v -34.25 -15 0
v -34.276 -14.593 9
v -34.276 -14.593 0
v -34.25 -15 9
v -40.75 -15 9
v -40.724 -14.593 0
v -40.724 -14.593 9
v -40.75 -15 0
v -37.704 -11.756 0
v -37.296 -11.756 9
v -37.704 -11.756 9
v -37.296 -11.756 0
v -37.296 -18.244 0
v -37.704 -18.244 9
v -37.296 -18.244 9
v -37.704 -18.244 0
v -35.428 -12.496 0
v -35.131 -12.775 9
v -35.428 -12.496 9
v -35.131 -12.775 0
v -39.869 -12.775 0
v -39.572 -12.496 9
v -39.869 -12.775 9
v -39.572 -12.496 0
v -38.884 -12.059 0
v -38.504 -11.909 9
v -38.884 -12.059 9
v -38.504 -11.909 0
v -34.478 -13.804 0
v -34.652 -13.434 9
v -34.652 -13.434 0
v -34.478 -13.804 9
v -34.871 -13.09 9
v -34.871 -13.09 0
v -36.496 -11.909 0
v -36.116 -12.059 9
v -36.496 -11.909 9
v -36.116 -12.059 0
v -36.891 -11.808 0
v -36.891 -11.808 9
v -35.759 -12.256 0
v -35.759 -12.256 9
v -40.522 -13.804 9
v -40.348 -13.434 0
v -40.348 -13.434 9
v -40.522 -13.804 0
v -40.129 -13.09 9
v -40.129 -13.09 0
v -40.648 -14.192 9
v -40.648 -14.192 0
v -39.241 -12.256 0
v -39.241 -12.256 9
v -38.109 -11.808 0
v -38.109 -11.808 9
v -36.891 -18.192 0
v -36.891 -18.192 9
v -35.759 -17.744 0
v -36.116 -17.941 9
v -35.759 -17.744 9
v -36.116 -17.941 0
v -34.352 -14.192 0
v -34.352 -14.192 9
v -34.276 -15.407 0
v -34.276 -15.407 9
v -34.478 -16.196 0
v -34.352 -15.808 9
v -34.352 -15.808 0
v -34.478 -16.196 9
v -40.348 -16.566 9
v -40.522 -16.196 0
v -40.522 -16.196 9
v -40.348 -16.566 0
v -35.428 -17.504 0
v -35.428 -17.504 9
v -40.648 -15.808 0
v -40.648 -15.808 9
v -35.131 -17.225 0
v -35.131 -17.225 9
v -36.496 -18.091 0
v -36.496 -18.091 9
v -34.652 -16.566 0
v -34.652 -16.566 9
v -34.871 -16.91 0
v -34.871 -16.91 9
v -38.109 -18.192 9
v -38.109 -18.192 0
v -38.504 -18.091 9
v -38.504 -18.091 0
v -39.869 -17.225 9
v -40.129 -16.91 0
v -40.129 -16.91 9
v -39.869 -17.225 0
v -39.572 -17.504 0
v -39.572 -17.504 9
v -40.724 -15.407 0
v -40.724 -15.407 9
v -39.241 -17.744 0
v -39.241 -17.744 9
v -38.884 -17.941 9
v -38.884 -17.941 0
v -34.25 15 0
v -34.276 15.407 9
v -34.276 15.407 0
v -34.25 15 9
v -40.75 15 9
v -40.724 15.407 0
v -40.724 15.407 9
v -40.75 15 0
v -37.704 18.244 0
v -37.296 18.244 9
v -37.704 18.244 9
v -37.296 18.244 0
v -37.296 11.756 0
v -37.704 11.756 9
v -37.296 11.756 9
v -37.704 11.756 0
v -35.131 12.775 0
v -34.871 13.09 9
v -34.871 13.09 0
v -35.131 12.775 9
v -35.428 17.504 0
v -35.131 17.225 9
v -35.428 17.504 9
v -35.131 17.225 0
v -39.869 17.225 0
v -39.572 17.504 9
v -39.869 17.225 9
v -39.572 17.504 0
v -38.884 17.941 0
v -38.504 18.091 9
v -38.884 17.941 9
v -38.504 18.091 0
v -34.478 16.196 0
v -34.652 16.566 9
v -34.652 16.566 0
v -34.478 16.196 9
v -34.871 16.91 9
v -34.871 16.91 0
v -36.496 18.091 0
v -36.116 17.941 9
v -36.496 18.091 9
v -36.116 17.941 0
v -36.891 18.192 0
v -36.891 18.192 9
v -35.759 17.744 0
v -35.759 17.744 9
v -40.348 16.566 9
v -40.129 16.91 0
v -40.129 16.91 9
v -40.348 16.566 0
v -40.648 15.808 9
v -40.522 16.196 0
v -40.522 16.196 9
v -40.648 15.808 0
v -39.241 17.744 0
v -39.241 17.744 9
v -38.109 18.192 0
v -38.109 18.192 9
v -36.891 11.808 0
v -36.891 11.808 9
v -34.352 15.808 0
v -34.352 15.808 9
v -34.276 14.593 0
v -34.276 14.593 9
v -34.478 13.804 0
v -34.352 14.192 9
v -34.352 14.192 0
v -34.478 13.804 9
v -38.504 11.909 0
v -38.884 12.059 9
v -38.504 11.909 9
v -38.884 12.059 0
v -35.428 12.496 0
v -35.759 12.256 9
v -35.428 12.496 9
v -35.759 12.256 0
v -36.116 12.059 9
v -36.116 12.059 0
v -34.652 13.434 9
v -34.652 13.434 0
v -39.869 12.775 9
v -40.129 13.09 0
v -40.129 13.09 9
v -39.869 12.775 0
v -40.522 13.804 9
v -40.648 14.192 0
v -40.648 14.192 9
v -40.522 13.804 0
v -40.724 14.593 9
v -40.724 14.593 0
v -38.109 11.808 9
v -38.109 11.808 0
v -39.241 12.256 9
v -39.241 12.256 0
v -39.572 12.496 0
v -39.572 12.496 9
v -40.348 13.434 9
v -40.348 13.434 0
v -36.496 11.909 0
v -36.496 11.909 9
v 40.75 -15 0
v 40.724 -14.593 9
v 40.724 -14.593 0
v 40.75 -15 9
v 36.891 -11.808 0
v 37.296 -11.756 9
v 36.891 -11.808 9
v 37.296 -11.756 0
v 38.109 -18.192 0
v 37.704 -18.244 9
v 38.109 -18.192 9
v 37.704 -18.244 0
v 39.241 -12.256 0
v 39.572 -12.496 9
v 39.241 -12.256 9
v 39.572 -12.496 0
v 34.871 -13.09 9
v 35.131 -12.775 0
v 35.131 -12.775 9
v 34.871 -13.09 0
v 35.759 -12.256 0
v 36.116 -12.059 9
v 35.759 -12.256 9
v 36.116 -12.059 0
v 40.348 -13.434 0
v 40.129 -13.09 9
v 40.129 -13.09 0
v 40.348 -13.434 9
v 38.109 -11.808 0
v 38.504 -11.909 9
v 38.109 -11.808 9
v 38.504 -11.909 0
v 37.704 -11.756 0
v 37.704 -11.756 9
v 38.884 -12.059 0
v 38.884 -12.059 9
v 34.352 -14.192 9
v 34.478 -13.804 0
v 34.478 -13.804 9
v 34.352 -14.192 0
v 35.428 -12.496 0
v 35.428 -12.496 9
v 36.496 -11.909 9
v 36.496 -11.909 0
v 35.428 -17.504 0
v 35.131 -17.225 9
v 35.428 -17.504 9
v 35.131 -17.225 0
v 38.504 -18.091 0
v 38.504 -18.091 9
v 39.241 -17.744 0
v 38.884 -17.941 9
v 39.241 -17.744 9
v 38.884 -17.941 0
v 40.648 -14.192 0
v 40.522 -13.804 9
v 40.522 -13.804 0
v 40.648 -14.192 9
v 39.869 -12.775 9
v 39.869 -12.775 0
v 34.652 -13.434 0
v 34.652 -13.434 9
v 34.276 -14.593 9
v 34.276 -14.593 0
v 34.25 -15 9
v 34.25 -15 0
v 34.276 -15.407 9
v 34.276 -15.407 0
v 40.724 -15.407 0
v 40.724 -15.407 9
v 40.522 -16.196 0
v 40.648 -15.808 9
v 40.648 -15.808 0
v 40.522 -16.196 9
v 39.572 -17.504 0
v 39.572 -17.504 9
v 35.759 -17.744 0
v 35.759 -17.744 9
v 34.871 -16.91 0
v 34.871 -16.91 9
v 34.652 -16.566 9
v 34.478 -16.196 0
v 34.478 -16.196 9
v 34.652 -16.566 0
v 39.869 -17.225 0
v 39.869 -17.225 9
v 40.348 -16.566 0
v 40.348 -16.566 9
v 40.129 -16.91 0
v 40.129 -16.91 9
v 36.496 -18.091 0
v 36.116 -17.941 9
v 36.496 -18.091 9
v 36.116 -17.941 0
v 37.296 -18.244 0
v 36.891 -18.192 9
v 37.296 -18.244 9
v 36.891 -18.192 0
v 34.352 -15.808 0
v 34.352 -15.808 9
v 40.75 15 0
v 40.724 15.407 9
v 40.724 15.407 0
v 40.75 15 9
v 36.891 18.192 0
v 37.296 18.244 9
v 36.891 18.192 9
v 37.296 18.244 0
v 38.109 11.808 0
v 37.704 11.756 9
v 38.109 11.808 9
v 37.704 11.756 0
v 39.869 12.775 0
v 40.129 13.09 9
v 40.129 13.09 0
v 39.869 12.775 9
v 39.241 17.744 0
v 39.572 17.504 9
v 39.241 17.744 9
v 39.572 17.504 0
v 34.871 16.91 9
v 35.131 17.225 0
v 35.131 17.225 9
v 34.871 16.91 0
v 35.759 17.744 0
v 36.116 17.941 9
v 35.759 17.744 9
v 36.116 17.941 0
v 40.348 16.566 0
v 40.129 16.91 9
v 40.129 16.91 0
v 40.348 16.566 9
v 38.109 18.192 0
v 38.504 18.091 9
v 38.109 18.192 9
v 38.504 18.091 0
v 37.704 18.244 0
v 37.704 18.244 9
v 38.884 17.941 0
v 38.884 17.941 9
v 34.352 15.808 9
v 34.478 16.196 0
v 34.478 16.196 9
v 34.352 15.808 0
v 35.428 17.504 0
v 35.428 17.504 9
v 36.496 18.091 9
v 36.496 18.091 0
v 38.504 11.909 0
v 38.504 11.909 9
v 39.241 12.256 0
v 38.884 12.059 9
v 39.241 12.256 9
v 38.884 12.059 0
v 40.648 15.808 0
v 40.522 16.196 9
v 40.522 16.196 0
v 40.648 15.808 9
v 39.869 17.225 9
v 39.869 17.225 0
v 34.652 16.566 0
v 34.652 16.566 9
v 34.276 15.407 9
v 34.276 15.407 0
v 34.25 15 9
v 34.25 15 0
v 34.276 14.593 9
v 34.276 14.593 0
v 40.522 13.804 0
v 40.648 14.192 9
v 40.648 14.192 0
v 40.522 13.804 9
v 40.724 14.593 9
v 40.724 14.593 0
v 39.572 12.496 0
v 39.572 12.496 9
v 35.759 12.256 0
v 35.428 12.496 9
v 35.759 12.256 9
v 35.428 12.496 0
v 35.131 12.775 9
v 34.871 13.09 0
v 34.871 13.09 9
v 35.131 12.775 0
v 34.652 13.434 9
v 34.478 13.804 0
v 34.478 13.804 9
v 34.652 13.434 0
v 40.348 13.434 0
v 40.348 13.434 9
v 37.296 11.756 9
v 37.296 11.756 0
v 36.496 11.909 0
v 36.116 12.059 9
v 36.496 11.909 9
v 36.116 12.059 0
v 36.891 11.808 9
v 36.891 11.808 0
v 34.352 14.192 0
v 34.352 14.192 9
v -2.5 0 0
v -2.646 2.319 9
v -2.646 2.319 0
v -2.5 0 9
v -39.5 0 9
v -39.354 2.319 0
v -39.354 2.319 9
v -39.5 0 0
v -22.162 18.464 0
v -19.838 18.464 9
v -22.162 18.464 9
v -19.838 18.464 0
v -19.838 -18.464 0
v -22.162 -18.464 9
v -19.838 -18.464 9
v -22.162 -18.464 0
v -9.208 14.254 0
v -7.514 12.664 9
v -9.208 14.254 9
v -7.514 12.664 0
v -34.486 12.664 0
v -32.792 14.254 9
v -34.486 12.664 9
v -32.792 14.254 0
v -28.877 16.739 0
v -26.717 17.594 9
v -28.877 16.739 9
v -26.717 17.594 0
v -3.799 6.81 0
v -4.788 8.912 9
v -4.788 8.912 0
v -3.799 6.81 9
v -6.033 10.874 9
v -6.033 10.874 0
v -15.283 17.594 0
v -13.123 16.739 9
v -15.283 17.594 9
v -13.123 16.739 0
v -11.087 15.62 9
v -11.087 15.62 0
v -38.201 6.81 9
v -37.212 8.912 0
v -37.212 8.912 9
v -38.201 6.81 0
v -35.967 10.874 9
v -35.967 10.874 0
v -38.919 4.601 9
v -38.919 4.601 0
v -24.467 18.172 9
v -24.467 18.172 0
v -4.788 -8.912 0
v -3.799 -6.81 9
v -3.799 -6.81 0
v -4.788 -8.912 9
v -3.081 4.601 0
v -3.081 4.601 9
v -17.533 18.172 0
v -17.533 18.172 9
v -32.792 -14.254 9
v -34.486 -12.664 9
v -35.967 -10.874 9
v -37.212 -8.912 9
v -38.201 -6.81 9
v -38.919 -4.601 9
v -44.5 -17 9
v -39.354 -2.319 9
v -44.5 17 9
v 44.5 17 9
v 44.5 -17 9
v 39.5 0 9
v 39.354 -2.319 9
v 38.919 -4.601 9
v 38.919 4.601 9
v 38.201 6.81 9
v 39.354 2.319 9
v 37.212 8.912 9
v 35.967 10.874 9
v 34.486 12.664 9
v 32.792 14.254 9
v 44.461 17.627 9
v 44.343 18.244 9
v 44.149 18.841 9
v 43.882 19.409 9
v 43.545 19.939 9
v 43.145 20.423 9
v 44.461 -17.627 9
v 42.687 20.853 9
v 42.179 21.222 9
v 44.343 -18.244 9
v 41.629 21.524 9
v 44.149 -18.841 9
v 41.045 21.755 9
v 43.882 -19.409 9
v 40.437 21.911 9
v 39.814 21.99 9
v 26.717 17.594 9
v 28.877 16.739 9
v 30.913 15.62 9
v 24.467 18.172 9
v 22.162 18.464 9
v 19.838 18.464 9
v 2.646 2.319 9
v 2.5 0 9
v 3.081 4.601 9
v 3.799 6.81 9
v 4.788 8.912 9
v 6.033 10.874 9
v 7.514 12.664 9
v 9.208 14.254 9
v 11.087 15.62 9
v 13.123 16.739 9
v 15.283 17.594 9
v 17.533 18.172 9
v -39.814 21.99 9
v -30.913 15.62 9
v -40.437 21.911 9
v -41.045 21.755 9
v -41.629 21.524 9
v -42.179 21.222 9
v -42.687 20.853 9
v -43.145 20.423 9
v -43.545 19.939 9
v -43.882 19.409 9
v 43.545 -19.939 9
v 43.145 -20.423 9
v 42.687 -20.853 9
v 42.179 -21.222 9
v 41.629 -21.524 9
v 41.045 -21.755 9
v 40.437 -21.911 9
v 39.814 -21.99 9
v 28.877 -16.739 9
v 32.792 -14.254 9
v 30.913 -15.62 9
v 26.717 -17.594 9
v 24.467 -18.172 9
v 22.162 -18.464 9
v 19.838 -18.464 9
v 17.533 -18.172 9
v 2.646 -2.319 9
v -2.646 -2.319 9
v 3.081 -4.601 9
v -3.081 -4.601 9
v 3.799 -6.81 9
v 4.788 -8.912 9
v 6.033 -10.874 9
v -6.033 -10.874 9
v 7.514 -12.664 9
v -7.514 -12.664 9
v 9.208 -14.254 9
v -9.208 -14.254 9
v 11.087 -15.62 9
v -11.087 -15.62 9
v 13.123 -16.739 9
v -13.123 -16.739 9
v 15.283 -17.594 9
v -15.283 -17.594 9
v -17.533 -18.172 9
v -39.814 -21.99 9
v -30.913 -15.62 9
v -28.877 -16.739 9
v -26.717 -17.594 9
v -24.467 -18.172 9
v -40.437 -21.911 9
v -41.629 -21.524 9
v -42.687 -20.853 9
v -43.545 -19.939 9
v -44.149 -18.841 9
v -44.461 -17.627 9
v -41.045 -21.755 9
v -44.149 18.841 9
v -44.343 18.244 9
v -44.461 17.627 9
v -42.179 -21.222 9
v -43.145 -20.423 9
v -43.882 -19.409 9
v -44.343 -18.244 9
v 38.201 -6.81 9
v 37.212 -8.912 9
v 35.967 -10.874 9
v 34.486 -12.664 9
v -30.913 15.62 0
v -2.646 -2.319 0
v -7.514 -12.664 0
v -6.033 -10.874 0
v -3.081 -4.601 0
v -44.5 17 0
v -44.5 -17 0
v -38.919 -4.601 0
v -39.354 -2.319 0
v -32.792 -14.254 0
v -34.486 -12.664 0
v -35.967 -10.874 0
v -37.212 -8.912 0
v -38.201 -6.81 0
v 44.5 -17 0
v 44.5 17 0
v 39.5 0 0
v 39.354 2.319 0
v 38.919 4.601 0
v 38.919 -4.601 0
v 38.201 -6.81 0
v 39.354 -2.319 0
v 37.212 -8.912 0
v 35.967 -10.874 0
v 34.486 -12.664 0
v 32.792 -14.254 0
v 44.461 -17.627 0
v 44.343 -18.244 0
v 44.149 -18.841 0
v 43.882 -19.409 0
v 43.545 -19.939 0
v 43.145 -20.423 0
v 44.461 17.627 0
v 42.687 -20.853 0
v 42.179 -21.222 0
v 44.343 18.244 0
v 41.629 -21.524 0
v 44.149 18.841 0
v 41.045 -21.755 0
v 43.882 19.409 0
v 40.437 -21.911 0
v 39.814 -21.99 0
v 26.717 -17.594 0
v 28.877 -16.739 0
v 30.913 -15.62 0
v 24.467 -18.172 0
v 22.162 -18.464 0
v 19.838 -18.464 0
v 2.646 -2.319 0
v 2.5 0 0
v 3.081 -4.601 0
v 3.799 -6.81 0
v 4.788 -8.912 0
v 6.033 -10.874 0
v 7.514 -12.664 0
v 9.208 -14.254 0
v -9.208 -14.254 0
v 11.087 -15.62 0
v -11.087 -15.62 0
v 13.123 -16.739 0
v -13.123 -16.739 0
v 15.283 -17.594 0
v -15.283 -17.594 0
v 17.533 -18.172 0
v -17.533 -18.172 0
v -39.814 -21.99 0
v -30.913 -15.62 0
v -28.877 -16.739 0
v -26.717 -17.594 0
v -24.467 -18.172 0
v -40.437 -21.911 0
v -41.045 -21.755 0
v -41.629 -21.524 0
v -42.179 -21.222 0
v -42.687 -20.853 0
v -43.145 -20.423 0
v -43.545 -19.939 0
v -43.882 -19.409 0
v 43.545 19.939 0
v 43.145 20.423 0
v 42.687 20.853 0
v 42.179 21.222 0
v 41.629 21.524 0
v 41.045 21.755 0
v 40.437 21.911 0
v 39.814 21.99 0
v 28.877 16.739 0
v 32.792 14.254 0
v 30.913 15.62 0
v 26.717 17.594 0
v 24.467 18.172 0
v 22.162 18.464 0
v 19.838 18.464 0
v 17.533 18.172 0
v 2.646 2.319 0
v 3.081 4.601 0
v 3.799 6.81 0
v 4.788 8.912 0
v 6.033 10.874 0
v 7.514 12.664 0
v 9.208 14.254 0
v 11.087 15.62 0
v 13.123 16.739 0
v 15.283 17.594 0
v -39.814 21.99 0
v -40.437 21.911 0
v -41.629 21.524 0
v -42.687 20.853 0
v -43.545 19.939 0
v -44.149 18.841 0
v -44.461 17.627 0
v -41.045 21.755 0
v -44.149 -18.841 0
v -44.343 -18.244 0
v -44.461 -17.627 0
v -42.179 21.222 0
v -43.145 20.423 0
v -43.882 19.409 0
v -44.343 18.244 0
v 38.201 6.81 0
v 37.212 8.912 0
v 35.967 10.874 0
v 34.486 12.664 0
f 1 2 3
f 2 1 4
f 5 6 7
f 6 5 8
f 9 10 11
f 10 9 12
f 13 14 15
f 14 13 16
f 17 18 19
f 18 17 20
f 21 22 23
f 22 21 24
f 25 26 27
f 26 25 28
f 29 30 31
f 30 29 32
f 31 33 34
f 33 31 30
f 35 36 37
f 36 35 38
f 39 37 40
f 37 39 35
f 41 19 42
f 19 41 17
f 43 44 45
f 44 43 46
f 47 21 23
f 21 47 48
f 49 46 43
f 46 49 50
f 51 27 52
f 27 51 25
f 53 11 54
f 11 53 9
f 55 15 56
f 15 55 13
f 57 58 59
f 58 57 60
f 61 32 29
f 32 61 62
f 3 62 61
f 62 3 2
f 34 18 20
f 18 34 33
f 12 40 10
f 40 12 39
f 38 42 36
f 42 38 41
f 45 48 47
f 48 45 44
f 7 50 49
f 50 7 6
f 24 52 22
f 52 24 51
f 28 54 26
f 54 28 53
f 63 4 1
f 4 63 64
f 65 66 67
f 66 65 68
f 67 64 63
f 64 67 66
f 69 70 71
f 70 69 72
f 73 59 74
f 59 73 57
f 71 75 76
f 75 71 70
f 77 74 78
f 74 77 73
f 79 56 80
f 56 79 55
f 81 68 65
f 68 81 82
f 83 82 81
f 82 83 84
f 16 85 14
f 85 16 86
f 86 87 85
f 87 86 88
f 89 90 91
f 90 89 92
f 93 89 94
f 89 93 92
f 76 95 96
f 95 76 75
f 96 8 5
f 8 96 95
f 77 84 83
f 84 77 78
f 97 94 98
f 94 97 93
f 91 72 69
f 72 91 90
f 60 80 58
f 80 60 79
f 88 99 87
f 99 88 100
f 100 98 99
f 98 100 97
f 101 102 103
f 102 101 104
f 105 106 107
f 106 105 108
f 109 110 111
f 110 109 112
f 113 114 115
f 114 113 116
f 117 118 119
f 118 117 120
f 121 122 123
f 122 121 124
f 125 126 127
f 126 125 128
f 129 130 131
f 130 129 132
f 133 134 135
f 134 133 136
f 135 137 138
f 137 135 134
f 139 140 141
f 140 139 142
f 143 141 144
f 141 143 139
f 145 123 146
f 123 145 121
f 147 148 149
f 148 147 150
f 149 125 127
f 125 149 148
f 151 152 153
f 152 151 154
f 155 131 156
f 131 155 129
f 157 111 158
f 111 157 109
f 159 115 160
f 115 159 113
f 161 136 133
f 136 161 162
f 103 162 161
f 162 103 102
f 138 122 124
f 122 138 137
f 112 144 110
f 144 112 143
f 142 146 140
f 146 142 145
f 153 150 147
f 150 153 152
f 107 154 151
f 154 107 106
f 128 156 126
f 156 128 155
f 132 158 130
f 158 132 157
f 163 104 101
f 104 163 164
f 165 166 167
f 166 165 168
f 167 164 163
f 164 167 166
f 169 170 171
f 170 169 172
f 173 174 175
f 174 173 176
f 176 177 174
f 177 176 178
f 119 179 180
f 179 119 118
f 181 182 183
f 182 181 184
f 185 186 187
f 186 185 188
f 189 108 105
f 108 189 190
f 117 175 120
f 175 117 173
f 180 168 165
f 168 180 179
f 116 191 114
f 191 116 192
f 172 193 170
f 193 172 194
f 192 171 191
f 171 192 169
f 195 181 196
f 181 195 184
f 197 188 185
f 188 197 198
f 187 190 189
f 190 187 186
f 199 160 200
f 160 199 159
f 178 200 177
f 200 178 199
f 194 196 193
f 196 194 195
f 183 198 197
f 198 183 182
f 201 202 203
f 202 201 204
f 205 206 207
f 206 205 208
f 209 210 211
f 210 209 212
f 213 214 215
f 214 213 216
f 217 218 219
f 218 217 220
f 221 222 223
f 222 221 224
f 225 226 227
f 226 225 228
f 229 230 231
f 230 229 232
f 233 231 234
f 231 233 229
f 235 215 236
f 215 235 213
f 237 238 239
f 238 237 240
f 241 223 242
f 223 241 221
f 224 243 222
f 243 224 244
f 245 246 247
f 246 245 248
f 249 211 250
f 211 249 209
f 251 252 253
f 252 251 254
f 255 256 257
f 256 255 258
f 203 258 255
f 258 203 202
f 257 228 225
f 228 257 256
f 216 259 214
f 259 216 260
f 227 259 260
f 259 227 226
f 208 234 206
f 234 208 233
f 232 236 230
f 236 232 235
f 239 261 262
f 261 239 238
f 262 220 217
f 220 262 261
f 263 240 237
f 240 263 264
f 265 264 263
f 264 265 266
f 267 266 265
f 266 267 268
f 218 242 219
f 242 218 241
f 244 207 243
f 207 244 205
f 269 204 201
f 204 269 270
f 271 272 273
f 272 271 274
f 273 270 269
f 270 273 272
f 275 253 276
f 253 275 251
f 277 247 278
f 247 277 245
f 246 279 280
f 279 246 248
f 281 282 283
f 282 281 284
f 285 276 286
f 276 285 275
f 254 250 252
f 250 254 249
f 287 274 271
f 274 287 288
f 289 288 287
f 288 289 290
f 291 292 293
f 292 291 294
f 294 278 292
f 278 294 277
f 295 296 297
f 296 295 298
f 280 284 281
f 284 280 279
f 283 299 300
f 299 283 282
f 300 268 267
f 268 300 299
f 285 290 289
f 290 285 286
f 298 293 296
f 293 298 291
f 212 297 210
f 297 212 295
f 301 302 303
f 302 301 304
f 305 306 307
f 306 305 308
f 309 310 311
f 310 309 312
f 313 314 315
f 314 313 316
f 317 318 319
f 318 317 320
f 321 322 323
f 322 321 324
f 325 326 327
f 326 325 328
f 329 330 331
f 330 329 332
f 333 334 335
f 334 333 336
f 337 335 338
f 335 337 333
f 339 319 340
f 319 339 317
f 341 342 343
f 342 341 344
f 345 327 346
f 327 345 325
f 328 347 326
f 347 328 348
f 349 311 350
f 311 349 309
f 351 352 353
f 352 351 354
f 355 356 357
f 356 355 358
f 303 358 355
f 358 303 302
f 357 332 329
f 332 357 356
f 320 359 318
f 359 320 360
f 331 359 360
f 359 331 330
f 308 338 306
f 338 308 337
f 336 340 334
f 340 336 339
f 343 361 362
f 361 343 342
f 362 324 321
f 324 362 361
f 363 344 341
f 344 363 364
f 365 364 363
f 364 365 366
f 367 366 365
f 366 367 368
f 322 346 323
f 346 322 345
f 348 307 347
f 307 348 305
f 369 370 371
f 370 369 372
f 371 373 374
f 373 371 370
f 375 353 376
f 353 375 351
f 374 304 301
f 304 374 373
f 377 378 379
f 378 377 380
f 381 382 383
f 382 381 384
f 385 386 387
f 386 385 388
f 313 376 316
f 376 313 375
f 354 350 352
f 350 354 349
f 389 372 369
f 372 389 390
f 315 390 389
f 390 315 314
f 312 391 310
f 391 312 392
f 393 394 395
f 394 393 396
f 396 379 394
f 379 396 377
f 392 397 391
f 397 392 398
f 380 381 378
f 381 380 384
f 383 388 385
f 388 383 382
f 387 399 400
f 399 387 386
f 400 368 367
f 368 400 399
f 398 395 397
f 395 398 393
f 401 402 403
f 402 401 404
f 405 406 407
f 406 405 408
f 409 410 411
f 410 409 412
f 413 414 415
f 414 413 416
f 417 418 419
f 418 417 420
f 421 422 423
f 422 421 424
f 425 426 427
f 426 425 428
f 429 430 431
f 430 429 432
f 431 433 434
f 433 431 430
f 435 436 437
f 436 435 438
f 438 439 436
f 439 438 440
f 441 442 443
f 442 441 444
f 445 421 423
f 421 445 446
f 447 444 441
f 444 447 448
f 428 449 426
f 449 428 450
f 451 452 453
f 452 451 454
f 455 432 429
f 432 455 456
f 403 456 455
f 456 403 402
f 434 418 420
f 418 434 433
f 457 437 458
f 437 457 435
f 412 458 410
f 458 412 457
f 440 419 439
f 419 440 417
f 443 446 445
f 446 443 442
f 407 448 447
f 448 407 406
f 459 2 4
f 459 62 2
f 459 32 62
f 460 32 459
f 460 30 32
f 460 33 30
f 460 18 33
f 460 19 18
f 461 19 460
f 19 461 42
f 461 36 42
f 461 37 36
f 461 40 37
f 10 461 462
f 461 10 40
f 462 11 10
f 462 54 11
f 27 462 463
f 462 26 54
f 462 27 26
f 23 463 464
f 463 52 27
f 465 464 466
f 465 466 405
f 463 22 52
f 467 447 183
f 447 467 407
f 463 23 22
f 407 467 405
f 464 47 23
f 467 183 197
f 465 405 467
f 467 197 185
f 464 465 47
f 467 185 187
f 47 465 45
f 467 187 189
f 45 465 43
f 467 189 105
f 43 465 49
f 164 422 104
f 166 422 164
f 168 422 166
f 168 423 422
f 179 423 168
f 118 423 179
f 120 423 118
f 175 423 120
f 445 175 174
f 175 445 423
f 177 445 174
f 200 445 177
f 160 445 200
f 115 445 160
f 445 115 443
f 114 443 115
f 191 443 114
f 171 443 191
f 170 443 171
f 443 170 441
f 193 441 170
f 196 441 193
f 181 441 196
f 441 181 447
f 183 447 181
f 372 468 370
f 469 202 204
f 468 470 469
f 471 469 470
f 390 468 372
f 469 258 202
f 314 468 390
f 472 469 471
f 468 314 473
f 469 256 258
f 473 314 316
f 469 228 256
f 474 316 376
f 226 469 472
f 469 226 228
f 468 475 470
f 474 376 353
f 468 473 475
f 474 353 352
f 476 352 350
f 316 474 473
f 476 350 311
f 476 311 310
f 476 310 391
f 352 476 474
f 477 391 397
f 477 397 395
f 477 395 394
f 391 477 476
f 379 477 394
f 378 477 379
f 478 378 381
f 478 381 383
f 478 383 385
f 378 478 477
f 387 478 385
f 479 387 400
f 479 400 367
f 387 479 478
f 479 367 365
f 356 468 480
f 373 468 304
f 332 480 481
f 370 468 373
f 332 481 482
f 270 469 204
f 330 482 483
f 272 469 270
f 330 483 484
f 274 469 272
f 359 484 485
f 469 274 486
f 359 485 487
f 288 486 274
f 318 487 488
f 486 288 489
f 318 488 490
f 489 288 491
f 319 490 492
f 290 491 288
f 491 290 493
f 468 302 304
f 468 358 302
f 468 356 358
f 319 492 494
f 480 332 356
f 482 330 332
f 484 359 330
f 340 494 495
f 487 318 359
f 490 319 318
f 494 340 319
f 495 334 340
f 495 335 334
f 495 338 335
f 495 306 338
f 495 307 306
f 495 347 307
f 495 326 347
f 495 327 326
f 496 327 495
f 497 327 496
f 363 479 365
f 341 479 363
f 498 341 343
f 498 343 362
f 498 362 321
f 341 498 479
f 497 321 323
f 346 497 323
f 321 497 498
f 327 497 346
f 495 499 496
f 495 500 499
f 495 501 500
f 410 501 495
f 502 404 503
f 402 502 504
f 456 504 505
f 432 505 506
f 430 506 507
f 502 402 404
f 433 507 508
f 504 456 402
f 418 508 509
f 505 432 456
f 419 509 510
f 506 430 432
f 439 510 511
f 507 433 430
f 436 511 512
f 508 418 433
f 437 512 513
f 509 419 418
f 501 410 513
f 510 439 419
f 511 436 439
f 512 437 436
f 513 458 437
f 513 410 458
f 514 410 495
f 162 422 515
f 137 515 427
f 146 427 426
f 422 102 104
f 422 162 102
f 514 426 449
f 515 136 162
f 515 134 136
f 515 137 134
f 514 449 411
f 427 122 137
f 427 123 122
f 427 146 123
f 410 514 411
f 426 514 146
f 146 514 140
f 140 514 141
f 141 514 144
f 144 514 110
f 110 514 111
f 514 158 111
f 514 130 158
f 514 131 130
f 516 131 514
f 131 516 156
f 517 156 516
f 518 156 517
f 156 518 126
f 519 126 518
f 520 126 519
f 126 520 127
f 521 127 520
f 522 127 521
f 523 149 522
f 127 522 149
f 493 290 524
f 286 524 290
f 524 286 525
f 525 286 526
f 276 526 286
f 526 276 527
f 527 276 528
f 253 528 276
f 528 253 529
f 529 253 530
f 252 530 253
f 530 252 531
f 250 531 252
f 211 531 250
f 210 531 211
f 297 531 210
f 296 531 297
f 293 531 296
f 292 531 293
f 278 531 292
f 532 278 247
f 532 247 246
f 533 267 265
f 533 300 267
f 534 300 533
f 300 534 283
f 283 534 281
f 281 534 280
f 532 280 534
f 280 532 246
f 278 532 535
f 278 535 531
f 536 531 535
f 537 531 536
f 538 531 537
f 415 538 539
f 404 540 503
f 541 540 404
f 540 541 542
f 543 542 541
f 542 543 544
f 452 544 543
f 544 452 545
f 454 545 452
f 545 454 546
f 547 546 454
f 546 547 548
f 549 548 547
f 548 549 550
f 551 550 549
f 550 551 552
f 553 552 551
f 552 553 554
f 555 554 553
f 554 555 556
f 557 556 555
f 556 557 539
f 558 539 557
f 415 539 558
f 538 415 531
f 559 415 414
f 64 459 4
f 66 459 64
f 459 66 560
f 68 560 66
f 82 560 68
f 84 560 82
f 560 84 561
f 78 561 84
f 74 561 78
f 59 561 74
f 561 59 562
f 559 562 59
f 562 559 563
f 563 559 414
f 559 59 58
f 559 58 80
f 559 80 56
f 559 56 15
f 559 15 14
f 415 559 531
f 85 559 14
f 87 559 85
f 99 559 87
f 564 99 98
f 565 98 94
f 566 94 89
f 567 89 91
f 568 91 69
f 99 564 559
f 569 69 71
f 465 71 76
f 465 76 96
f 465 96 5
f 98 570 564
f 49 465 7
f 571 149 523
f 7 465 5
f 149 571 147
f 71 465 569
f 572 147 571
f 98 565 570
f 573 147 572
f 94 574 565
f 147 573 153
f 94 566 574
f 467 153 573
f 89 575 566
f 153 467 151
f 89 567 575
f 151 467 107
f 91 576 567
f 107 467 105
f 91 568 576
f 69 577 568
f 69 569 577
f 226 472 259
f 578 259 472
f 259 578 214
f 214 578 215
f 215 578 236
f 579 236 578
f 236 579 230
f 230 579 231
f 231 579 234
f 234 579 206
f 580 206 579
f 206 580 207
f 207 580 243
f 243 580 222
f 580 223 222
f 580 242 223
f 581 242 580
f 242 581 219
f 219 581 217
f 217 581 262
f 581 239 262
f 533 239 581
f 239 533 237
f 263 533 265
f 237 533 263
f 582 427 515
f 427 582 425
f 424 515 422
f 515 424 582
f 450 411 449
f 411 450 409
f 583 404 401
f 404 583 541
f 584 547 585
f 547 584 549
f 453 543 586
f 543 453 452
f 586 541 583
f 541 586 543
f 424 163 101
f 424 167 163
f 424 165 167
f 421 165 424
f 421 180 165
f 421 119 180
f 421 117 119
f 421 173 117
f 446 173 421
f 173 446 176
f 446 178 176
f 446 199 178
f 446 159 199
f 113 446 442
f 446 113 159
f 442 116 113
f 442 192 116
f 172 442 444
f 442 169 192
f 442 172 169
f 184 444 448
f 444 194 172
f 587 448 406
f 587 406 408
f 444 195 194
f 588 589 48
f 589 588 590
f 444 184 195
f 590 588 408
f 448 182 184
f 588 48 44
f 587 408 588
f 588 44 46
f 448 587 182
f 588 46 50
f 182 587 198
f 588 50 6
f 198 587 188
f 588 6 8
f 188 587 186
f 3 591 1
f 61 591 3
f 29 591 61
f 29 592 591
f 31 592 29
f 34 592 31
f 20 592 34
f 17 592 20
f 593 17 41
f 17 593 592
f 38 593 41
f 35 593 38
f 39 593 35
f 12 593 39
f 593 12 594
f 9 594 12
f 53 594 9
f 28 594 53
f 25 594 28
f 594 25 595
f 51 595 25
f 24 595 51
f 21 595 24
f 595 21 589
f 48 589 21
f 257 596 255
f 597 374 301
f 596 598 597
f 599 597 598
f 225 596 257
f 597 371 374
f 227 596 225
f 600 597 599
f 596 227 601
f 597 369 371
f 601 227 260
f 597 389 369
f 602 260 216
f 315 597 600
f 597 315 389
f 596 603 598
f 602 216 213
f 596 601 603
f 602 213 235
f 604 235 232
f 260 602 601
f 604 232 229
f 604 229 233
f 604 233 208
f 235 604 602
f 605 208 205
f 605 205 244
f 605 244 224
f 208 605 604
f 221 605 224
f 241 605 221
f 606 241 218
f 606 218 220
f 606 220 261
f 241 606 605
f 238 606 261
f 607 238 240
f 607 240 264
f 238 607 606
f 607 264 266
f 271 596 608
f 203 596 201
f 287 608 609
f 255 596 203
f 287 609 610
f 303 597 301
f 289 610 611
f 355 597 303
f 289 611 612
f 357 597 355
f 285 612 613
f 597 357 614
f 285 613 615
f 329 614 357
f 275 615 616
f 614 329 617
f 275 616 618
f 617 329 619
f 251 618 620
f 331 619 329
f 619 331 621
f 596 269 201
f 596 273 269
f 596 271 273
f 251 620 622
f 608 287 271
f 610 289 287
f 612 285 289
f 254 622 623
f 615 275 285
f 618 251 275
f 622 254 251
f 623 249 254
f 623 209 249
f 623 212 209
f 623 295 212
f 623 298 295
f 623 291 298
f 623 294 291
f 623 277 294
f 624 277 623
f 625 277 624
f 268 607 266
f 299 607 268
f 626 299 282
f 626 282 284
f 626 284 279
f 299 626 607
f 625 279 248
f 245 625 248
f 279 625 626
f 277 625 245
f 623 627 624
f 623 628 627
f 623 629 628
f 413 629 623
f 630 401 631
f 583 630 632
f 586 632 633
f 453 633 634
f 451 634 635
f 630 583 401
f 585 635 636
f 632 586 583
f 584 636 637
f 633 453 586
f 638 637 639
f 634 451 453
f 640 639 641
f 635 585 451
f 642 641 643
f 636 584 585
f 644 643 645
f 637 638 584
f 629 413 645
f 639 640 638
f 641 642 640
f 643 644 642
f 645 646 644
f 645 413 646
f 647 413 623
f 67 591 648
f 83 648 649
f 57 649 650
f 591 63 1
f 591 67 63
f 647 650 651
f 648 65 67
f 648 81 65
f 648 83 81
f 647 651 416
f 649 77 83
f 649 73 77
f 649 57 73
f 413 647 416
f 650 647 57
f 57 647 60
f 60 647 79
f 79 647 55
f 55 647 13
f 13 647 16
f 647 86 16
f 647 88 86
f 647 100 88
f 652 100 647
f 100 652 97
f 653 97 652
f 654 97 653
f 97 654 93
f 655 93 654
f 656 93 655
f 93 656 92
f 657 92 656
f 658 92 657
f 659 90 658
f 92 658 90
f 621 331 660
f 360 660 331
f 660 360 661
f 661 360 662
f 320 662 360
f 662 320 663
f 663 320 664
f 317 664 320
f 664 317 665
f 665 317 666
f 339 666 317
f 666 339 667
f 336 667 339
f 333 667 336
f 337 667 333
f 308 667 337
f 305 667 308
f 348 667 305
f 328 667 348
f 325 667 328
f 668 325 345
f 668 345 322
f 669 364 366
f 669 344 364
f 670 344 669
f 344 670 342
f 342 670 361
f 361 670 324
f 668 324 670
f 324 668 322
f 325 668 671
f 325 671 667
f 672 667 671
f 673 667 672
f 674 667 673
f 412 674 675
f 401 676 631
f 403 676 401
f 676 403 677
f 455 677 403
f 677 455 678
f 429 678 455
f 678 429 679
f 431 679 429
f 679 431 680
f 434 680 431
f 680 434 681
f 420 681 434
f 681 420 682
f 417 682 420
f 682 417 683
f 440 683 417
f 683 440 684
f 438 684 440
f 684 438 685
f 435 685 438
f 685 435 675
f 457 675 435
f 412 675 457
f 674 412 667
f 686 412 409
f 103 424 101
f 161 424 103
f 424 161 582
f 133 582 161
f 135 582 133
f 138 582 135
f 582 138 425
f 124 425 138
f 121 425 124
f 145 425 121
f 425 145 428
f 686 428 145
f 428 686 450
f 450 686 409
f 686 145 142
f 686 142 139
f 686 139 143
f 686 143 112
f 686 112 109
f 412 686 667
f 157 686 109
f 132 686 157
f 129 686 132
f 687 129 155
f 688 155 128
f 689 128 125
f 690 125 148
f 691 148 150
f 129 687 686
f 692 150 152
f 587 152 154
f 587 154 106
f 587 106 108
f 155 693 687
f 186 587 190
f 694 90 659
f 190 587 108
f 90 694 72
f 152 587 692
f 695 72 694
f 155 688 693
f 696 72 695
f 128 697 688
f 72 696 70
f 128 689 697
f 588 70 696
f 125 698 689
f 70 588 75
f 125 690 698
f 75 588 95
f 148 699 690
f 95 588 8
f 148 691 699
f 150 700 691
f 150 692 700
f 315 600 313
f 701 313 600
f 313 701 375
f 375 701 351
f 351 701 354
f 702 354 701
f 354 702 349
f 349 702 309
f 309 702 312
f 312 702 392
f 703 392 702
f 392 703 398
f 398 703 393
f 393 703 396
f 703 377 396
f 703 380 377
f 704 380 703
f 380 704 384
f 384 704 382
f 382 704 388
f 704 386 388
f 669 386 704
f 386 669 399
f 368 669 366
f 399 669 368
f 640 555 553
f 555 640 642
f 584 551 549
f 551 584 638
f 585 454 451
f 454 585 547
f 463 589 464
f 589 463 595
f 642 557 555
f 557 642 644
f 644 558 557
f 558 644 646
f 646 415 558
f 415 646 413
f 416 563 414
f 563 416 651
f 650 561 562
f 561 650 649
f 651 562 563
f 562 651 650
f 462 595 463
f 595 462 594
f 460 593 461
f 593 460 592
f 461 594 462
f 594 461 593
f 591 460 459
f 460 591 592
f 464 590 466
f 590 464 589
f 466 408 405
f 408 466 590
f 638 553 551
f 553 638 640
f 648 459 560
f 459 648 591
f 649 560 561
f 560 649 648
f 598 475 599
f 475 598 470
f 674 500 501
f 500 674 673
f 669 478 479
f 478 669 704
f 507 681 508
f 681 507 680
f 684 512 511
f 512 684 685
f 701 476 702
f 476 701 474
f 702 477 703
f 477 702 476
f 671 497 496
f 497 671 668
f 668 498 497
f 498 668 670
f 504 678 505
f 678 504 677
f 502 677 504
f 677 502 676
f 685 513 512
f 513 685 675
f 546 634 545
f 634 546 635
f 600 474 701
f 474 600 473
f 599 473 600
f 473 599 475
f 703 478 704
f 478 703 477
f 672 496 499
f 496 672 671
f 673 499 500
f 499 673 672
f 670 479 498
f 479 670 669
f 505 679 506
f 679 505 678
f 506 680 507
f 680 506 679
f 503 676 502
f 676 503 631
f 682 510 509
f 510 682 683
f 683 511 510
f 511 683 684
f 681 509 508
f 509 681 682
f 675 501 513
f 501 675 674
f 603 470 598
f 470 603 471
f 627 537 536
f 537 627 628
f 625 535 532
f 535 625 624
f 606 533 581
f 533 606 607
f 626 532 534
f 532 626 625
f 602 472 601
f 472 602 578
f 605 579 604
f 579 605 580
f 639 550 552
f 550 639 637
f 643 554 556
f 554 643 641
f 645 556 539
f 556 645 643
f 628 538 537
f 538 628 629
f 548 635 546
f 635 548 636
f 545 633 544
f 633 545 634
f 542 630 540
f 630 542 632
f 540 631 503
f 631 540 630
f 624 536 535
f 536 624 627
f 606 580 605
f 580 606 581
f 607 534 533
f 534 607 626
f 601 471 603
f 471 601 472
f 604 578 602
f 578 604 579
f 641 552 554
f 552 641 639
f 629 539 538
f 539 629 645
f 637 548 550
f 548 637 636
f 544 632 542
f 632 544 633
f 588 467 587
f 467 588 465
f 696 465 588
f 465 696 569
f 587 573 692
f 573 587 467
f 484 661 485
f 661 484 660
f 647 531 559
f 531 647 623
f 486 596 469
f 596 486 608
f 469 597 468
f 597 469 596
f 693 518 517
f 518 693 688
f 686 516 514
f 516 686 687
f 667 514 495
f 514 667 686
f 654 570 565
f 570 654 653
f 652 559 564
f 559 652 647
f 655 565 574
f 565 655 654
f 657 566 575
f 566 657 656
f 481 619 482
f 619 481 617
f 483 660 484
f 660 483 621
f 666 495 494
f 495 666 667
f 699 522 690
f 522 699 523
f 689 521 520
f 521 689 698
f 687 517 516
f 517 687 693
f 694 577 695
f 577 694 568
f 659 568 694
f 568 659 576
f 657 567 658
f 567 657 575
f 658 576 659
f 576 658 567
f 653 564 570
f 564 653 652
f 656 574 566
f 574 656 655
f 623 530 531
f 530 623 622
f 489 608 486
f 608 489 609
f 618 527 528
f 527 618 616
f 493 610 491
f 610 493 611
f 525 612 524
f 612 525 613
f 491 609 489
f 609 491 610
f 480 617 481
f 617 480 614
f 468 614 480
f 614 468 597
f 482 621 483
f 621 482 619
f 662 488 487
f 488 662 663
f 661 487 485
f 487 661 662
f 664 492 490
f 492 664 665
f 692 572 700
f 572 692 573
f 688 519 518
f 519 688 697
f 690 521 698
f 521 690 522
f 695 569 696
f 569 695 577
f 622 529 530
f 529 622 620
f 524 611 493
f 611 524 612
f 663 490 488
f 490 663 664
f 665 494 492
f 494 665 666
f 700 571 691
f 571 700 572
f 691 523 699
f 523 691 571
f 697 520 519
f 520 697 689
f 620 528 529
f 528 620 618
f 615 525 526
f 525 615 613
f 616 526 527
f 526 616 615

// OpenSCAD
$fn = 50;


difference() {
	union() {
		hull() {
			translate(v = [-39.5000000000, 17.0000000000, 0]) {
				cylinder(h = 9, r = 5);
			}
			translate(v = [39.5000000000, 17.0000000000, 0]) {
				cylinder(h = 9, r = 5);
			}
			translate(v = [-39.5000000000, -17.0000000000, 0]) {
				cylinder(h = 9, r = 5);
			}
			translate(v = [39.5000000000, -17.0000000000, 0]) {
				cylinder(h = 9, r = 5);
			}
		}
	}
	union() {
		#translate(v = [-37.5000000000, -15.0000000000, -100.0000000000]) {
			cylinder(h = 200, r = 3.2500000000);
		}
		#translate(v = [-37.5000000000, 15.0000000000, -100.0000000000]) {
			cylinder(h = 200, r = 3.2500000000);
		}
		#translate(v = [37.5000000000, -15.0000000000, -100.0000000000]) {
			cylinder(h = 200, r = 3.2500000000);
		}
		#translate(v = [37.5000000000, 15.0000000000, -100.0000000000]) {
			cylinder(h = 200, r = 3.2500000000);
		}
		#translate(v = [-21.0000000000, 0, 0]) {
			cylinder(h = 9, r = 18.5000000000);
		}
		#translate(v = [21.0000000000, 0, 0]) {
			cylinder(h = 9, r = 18.5000000000);
		}
	}
}
